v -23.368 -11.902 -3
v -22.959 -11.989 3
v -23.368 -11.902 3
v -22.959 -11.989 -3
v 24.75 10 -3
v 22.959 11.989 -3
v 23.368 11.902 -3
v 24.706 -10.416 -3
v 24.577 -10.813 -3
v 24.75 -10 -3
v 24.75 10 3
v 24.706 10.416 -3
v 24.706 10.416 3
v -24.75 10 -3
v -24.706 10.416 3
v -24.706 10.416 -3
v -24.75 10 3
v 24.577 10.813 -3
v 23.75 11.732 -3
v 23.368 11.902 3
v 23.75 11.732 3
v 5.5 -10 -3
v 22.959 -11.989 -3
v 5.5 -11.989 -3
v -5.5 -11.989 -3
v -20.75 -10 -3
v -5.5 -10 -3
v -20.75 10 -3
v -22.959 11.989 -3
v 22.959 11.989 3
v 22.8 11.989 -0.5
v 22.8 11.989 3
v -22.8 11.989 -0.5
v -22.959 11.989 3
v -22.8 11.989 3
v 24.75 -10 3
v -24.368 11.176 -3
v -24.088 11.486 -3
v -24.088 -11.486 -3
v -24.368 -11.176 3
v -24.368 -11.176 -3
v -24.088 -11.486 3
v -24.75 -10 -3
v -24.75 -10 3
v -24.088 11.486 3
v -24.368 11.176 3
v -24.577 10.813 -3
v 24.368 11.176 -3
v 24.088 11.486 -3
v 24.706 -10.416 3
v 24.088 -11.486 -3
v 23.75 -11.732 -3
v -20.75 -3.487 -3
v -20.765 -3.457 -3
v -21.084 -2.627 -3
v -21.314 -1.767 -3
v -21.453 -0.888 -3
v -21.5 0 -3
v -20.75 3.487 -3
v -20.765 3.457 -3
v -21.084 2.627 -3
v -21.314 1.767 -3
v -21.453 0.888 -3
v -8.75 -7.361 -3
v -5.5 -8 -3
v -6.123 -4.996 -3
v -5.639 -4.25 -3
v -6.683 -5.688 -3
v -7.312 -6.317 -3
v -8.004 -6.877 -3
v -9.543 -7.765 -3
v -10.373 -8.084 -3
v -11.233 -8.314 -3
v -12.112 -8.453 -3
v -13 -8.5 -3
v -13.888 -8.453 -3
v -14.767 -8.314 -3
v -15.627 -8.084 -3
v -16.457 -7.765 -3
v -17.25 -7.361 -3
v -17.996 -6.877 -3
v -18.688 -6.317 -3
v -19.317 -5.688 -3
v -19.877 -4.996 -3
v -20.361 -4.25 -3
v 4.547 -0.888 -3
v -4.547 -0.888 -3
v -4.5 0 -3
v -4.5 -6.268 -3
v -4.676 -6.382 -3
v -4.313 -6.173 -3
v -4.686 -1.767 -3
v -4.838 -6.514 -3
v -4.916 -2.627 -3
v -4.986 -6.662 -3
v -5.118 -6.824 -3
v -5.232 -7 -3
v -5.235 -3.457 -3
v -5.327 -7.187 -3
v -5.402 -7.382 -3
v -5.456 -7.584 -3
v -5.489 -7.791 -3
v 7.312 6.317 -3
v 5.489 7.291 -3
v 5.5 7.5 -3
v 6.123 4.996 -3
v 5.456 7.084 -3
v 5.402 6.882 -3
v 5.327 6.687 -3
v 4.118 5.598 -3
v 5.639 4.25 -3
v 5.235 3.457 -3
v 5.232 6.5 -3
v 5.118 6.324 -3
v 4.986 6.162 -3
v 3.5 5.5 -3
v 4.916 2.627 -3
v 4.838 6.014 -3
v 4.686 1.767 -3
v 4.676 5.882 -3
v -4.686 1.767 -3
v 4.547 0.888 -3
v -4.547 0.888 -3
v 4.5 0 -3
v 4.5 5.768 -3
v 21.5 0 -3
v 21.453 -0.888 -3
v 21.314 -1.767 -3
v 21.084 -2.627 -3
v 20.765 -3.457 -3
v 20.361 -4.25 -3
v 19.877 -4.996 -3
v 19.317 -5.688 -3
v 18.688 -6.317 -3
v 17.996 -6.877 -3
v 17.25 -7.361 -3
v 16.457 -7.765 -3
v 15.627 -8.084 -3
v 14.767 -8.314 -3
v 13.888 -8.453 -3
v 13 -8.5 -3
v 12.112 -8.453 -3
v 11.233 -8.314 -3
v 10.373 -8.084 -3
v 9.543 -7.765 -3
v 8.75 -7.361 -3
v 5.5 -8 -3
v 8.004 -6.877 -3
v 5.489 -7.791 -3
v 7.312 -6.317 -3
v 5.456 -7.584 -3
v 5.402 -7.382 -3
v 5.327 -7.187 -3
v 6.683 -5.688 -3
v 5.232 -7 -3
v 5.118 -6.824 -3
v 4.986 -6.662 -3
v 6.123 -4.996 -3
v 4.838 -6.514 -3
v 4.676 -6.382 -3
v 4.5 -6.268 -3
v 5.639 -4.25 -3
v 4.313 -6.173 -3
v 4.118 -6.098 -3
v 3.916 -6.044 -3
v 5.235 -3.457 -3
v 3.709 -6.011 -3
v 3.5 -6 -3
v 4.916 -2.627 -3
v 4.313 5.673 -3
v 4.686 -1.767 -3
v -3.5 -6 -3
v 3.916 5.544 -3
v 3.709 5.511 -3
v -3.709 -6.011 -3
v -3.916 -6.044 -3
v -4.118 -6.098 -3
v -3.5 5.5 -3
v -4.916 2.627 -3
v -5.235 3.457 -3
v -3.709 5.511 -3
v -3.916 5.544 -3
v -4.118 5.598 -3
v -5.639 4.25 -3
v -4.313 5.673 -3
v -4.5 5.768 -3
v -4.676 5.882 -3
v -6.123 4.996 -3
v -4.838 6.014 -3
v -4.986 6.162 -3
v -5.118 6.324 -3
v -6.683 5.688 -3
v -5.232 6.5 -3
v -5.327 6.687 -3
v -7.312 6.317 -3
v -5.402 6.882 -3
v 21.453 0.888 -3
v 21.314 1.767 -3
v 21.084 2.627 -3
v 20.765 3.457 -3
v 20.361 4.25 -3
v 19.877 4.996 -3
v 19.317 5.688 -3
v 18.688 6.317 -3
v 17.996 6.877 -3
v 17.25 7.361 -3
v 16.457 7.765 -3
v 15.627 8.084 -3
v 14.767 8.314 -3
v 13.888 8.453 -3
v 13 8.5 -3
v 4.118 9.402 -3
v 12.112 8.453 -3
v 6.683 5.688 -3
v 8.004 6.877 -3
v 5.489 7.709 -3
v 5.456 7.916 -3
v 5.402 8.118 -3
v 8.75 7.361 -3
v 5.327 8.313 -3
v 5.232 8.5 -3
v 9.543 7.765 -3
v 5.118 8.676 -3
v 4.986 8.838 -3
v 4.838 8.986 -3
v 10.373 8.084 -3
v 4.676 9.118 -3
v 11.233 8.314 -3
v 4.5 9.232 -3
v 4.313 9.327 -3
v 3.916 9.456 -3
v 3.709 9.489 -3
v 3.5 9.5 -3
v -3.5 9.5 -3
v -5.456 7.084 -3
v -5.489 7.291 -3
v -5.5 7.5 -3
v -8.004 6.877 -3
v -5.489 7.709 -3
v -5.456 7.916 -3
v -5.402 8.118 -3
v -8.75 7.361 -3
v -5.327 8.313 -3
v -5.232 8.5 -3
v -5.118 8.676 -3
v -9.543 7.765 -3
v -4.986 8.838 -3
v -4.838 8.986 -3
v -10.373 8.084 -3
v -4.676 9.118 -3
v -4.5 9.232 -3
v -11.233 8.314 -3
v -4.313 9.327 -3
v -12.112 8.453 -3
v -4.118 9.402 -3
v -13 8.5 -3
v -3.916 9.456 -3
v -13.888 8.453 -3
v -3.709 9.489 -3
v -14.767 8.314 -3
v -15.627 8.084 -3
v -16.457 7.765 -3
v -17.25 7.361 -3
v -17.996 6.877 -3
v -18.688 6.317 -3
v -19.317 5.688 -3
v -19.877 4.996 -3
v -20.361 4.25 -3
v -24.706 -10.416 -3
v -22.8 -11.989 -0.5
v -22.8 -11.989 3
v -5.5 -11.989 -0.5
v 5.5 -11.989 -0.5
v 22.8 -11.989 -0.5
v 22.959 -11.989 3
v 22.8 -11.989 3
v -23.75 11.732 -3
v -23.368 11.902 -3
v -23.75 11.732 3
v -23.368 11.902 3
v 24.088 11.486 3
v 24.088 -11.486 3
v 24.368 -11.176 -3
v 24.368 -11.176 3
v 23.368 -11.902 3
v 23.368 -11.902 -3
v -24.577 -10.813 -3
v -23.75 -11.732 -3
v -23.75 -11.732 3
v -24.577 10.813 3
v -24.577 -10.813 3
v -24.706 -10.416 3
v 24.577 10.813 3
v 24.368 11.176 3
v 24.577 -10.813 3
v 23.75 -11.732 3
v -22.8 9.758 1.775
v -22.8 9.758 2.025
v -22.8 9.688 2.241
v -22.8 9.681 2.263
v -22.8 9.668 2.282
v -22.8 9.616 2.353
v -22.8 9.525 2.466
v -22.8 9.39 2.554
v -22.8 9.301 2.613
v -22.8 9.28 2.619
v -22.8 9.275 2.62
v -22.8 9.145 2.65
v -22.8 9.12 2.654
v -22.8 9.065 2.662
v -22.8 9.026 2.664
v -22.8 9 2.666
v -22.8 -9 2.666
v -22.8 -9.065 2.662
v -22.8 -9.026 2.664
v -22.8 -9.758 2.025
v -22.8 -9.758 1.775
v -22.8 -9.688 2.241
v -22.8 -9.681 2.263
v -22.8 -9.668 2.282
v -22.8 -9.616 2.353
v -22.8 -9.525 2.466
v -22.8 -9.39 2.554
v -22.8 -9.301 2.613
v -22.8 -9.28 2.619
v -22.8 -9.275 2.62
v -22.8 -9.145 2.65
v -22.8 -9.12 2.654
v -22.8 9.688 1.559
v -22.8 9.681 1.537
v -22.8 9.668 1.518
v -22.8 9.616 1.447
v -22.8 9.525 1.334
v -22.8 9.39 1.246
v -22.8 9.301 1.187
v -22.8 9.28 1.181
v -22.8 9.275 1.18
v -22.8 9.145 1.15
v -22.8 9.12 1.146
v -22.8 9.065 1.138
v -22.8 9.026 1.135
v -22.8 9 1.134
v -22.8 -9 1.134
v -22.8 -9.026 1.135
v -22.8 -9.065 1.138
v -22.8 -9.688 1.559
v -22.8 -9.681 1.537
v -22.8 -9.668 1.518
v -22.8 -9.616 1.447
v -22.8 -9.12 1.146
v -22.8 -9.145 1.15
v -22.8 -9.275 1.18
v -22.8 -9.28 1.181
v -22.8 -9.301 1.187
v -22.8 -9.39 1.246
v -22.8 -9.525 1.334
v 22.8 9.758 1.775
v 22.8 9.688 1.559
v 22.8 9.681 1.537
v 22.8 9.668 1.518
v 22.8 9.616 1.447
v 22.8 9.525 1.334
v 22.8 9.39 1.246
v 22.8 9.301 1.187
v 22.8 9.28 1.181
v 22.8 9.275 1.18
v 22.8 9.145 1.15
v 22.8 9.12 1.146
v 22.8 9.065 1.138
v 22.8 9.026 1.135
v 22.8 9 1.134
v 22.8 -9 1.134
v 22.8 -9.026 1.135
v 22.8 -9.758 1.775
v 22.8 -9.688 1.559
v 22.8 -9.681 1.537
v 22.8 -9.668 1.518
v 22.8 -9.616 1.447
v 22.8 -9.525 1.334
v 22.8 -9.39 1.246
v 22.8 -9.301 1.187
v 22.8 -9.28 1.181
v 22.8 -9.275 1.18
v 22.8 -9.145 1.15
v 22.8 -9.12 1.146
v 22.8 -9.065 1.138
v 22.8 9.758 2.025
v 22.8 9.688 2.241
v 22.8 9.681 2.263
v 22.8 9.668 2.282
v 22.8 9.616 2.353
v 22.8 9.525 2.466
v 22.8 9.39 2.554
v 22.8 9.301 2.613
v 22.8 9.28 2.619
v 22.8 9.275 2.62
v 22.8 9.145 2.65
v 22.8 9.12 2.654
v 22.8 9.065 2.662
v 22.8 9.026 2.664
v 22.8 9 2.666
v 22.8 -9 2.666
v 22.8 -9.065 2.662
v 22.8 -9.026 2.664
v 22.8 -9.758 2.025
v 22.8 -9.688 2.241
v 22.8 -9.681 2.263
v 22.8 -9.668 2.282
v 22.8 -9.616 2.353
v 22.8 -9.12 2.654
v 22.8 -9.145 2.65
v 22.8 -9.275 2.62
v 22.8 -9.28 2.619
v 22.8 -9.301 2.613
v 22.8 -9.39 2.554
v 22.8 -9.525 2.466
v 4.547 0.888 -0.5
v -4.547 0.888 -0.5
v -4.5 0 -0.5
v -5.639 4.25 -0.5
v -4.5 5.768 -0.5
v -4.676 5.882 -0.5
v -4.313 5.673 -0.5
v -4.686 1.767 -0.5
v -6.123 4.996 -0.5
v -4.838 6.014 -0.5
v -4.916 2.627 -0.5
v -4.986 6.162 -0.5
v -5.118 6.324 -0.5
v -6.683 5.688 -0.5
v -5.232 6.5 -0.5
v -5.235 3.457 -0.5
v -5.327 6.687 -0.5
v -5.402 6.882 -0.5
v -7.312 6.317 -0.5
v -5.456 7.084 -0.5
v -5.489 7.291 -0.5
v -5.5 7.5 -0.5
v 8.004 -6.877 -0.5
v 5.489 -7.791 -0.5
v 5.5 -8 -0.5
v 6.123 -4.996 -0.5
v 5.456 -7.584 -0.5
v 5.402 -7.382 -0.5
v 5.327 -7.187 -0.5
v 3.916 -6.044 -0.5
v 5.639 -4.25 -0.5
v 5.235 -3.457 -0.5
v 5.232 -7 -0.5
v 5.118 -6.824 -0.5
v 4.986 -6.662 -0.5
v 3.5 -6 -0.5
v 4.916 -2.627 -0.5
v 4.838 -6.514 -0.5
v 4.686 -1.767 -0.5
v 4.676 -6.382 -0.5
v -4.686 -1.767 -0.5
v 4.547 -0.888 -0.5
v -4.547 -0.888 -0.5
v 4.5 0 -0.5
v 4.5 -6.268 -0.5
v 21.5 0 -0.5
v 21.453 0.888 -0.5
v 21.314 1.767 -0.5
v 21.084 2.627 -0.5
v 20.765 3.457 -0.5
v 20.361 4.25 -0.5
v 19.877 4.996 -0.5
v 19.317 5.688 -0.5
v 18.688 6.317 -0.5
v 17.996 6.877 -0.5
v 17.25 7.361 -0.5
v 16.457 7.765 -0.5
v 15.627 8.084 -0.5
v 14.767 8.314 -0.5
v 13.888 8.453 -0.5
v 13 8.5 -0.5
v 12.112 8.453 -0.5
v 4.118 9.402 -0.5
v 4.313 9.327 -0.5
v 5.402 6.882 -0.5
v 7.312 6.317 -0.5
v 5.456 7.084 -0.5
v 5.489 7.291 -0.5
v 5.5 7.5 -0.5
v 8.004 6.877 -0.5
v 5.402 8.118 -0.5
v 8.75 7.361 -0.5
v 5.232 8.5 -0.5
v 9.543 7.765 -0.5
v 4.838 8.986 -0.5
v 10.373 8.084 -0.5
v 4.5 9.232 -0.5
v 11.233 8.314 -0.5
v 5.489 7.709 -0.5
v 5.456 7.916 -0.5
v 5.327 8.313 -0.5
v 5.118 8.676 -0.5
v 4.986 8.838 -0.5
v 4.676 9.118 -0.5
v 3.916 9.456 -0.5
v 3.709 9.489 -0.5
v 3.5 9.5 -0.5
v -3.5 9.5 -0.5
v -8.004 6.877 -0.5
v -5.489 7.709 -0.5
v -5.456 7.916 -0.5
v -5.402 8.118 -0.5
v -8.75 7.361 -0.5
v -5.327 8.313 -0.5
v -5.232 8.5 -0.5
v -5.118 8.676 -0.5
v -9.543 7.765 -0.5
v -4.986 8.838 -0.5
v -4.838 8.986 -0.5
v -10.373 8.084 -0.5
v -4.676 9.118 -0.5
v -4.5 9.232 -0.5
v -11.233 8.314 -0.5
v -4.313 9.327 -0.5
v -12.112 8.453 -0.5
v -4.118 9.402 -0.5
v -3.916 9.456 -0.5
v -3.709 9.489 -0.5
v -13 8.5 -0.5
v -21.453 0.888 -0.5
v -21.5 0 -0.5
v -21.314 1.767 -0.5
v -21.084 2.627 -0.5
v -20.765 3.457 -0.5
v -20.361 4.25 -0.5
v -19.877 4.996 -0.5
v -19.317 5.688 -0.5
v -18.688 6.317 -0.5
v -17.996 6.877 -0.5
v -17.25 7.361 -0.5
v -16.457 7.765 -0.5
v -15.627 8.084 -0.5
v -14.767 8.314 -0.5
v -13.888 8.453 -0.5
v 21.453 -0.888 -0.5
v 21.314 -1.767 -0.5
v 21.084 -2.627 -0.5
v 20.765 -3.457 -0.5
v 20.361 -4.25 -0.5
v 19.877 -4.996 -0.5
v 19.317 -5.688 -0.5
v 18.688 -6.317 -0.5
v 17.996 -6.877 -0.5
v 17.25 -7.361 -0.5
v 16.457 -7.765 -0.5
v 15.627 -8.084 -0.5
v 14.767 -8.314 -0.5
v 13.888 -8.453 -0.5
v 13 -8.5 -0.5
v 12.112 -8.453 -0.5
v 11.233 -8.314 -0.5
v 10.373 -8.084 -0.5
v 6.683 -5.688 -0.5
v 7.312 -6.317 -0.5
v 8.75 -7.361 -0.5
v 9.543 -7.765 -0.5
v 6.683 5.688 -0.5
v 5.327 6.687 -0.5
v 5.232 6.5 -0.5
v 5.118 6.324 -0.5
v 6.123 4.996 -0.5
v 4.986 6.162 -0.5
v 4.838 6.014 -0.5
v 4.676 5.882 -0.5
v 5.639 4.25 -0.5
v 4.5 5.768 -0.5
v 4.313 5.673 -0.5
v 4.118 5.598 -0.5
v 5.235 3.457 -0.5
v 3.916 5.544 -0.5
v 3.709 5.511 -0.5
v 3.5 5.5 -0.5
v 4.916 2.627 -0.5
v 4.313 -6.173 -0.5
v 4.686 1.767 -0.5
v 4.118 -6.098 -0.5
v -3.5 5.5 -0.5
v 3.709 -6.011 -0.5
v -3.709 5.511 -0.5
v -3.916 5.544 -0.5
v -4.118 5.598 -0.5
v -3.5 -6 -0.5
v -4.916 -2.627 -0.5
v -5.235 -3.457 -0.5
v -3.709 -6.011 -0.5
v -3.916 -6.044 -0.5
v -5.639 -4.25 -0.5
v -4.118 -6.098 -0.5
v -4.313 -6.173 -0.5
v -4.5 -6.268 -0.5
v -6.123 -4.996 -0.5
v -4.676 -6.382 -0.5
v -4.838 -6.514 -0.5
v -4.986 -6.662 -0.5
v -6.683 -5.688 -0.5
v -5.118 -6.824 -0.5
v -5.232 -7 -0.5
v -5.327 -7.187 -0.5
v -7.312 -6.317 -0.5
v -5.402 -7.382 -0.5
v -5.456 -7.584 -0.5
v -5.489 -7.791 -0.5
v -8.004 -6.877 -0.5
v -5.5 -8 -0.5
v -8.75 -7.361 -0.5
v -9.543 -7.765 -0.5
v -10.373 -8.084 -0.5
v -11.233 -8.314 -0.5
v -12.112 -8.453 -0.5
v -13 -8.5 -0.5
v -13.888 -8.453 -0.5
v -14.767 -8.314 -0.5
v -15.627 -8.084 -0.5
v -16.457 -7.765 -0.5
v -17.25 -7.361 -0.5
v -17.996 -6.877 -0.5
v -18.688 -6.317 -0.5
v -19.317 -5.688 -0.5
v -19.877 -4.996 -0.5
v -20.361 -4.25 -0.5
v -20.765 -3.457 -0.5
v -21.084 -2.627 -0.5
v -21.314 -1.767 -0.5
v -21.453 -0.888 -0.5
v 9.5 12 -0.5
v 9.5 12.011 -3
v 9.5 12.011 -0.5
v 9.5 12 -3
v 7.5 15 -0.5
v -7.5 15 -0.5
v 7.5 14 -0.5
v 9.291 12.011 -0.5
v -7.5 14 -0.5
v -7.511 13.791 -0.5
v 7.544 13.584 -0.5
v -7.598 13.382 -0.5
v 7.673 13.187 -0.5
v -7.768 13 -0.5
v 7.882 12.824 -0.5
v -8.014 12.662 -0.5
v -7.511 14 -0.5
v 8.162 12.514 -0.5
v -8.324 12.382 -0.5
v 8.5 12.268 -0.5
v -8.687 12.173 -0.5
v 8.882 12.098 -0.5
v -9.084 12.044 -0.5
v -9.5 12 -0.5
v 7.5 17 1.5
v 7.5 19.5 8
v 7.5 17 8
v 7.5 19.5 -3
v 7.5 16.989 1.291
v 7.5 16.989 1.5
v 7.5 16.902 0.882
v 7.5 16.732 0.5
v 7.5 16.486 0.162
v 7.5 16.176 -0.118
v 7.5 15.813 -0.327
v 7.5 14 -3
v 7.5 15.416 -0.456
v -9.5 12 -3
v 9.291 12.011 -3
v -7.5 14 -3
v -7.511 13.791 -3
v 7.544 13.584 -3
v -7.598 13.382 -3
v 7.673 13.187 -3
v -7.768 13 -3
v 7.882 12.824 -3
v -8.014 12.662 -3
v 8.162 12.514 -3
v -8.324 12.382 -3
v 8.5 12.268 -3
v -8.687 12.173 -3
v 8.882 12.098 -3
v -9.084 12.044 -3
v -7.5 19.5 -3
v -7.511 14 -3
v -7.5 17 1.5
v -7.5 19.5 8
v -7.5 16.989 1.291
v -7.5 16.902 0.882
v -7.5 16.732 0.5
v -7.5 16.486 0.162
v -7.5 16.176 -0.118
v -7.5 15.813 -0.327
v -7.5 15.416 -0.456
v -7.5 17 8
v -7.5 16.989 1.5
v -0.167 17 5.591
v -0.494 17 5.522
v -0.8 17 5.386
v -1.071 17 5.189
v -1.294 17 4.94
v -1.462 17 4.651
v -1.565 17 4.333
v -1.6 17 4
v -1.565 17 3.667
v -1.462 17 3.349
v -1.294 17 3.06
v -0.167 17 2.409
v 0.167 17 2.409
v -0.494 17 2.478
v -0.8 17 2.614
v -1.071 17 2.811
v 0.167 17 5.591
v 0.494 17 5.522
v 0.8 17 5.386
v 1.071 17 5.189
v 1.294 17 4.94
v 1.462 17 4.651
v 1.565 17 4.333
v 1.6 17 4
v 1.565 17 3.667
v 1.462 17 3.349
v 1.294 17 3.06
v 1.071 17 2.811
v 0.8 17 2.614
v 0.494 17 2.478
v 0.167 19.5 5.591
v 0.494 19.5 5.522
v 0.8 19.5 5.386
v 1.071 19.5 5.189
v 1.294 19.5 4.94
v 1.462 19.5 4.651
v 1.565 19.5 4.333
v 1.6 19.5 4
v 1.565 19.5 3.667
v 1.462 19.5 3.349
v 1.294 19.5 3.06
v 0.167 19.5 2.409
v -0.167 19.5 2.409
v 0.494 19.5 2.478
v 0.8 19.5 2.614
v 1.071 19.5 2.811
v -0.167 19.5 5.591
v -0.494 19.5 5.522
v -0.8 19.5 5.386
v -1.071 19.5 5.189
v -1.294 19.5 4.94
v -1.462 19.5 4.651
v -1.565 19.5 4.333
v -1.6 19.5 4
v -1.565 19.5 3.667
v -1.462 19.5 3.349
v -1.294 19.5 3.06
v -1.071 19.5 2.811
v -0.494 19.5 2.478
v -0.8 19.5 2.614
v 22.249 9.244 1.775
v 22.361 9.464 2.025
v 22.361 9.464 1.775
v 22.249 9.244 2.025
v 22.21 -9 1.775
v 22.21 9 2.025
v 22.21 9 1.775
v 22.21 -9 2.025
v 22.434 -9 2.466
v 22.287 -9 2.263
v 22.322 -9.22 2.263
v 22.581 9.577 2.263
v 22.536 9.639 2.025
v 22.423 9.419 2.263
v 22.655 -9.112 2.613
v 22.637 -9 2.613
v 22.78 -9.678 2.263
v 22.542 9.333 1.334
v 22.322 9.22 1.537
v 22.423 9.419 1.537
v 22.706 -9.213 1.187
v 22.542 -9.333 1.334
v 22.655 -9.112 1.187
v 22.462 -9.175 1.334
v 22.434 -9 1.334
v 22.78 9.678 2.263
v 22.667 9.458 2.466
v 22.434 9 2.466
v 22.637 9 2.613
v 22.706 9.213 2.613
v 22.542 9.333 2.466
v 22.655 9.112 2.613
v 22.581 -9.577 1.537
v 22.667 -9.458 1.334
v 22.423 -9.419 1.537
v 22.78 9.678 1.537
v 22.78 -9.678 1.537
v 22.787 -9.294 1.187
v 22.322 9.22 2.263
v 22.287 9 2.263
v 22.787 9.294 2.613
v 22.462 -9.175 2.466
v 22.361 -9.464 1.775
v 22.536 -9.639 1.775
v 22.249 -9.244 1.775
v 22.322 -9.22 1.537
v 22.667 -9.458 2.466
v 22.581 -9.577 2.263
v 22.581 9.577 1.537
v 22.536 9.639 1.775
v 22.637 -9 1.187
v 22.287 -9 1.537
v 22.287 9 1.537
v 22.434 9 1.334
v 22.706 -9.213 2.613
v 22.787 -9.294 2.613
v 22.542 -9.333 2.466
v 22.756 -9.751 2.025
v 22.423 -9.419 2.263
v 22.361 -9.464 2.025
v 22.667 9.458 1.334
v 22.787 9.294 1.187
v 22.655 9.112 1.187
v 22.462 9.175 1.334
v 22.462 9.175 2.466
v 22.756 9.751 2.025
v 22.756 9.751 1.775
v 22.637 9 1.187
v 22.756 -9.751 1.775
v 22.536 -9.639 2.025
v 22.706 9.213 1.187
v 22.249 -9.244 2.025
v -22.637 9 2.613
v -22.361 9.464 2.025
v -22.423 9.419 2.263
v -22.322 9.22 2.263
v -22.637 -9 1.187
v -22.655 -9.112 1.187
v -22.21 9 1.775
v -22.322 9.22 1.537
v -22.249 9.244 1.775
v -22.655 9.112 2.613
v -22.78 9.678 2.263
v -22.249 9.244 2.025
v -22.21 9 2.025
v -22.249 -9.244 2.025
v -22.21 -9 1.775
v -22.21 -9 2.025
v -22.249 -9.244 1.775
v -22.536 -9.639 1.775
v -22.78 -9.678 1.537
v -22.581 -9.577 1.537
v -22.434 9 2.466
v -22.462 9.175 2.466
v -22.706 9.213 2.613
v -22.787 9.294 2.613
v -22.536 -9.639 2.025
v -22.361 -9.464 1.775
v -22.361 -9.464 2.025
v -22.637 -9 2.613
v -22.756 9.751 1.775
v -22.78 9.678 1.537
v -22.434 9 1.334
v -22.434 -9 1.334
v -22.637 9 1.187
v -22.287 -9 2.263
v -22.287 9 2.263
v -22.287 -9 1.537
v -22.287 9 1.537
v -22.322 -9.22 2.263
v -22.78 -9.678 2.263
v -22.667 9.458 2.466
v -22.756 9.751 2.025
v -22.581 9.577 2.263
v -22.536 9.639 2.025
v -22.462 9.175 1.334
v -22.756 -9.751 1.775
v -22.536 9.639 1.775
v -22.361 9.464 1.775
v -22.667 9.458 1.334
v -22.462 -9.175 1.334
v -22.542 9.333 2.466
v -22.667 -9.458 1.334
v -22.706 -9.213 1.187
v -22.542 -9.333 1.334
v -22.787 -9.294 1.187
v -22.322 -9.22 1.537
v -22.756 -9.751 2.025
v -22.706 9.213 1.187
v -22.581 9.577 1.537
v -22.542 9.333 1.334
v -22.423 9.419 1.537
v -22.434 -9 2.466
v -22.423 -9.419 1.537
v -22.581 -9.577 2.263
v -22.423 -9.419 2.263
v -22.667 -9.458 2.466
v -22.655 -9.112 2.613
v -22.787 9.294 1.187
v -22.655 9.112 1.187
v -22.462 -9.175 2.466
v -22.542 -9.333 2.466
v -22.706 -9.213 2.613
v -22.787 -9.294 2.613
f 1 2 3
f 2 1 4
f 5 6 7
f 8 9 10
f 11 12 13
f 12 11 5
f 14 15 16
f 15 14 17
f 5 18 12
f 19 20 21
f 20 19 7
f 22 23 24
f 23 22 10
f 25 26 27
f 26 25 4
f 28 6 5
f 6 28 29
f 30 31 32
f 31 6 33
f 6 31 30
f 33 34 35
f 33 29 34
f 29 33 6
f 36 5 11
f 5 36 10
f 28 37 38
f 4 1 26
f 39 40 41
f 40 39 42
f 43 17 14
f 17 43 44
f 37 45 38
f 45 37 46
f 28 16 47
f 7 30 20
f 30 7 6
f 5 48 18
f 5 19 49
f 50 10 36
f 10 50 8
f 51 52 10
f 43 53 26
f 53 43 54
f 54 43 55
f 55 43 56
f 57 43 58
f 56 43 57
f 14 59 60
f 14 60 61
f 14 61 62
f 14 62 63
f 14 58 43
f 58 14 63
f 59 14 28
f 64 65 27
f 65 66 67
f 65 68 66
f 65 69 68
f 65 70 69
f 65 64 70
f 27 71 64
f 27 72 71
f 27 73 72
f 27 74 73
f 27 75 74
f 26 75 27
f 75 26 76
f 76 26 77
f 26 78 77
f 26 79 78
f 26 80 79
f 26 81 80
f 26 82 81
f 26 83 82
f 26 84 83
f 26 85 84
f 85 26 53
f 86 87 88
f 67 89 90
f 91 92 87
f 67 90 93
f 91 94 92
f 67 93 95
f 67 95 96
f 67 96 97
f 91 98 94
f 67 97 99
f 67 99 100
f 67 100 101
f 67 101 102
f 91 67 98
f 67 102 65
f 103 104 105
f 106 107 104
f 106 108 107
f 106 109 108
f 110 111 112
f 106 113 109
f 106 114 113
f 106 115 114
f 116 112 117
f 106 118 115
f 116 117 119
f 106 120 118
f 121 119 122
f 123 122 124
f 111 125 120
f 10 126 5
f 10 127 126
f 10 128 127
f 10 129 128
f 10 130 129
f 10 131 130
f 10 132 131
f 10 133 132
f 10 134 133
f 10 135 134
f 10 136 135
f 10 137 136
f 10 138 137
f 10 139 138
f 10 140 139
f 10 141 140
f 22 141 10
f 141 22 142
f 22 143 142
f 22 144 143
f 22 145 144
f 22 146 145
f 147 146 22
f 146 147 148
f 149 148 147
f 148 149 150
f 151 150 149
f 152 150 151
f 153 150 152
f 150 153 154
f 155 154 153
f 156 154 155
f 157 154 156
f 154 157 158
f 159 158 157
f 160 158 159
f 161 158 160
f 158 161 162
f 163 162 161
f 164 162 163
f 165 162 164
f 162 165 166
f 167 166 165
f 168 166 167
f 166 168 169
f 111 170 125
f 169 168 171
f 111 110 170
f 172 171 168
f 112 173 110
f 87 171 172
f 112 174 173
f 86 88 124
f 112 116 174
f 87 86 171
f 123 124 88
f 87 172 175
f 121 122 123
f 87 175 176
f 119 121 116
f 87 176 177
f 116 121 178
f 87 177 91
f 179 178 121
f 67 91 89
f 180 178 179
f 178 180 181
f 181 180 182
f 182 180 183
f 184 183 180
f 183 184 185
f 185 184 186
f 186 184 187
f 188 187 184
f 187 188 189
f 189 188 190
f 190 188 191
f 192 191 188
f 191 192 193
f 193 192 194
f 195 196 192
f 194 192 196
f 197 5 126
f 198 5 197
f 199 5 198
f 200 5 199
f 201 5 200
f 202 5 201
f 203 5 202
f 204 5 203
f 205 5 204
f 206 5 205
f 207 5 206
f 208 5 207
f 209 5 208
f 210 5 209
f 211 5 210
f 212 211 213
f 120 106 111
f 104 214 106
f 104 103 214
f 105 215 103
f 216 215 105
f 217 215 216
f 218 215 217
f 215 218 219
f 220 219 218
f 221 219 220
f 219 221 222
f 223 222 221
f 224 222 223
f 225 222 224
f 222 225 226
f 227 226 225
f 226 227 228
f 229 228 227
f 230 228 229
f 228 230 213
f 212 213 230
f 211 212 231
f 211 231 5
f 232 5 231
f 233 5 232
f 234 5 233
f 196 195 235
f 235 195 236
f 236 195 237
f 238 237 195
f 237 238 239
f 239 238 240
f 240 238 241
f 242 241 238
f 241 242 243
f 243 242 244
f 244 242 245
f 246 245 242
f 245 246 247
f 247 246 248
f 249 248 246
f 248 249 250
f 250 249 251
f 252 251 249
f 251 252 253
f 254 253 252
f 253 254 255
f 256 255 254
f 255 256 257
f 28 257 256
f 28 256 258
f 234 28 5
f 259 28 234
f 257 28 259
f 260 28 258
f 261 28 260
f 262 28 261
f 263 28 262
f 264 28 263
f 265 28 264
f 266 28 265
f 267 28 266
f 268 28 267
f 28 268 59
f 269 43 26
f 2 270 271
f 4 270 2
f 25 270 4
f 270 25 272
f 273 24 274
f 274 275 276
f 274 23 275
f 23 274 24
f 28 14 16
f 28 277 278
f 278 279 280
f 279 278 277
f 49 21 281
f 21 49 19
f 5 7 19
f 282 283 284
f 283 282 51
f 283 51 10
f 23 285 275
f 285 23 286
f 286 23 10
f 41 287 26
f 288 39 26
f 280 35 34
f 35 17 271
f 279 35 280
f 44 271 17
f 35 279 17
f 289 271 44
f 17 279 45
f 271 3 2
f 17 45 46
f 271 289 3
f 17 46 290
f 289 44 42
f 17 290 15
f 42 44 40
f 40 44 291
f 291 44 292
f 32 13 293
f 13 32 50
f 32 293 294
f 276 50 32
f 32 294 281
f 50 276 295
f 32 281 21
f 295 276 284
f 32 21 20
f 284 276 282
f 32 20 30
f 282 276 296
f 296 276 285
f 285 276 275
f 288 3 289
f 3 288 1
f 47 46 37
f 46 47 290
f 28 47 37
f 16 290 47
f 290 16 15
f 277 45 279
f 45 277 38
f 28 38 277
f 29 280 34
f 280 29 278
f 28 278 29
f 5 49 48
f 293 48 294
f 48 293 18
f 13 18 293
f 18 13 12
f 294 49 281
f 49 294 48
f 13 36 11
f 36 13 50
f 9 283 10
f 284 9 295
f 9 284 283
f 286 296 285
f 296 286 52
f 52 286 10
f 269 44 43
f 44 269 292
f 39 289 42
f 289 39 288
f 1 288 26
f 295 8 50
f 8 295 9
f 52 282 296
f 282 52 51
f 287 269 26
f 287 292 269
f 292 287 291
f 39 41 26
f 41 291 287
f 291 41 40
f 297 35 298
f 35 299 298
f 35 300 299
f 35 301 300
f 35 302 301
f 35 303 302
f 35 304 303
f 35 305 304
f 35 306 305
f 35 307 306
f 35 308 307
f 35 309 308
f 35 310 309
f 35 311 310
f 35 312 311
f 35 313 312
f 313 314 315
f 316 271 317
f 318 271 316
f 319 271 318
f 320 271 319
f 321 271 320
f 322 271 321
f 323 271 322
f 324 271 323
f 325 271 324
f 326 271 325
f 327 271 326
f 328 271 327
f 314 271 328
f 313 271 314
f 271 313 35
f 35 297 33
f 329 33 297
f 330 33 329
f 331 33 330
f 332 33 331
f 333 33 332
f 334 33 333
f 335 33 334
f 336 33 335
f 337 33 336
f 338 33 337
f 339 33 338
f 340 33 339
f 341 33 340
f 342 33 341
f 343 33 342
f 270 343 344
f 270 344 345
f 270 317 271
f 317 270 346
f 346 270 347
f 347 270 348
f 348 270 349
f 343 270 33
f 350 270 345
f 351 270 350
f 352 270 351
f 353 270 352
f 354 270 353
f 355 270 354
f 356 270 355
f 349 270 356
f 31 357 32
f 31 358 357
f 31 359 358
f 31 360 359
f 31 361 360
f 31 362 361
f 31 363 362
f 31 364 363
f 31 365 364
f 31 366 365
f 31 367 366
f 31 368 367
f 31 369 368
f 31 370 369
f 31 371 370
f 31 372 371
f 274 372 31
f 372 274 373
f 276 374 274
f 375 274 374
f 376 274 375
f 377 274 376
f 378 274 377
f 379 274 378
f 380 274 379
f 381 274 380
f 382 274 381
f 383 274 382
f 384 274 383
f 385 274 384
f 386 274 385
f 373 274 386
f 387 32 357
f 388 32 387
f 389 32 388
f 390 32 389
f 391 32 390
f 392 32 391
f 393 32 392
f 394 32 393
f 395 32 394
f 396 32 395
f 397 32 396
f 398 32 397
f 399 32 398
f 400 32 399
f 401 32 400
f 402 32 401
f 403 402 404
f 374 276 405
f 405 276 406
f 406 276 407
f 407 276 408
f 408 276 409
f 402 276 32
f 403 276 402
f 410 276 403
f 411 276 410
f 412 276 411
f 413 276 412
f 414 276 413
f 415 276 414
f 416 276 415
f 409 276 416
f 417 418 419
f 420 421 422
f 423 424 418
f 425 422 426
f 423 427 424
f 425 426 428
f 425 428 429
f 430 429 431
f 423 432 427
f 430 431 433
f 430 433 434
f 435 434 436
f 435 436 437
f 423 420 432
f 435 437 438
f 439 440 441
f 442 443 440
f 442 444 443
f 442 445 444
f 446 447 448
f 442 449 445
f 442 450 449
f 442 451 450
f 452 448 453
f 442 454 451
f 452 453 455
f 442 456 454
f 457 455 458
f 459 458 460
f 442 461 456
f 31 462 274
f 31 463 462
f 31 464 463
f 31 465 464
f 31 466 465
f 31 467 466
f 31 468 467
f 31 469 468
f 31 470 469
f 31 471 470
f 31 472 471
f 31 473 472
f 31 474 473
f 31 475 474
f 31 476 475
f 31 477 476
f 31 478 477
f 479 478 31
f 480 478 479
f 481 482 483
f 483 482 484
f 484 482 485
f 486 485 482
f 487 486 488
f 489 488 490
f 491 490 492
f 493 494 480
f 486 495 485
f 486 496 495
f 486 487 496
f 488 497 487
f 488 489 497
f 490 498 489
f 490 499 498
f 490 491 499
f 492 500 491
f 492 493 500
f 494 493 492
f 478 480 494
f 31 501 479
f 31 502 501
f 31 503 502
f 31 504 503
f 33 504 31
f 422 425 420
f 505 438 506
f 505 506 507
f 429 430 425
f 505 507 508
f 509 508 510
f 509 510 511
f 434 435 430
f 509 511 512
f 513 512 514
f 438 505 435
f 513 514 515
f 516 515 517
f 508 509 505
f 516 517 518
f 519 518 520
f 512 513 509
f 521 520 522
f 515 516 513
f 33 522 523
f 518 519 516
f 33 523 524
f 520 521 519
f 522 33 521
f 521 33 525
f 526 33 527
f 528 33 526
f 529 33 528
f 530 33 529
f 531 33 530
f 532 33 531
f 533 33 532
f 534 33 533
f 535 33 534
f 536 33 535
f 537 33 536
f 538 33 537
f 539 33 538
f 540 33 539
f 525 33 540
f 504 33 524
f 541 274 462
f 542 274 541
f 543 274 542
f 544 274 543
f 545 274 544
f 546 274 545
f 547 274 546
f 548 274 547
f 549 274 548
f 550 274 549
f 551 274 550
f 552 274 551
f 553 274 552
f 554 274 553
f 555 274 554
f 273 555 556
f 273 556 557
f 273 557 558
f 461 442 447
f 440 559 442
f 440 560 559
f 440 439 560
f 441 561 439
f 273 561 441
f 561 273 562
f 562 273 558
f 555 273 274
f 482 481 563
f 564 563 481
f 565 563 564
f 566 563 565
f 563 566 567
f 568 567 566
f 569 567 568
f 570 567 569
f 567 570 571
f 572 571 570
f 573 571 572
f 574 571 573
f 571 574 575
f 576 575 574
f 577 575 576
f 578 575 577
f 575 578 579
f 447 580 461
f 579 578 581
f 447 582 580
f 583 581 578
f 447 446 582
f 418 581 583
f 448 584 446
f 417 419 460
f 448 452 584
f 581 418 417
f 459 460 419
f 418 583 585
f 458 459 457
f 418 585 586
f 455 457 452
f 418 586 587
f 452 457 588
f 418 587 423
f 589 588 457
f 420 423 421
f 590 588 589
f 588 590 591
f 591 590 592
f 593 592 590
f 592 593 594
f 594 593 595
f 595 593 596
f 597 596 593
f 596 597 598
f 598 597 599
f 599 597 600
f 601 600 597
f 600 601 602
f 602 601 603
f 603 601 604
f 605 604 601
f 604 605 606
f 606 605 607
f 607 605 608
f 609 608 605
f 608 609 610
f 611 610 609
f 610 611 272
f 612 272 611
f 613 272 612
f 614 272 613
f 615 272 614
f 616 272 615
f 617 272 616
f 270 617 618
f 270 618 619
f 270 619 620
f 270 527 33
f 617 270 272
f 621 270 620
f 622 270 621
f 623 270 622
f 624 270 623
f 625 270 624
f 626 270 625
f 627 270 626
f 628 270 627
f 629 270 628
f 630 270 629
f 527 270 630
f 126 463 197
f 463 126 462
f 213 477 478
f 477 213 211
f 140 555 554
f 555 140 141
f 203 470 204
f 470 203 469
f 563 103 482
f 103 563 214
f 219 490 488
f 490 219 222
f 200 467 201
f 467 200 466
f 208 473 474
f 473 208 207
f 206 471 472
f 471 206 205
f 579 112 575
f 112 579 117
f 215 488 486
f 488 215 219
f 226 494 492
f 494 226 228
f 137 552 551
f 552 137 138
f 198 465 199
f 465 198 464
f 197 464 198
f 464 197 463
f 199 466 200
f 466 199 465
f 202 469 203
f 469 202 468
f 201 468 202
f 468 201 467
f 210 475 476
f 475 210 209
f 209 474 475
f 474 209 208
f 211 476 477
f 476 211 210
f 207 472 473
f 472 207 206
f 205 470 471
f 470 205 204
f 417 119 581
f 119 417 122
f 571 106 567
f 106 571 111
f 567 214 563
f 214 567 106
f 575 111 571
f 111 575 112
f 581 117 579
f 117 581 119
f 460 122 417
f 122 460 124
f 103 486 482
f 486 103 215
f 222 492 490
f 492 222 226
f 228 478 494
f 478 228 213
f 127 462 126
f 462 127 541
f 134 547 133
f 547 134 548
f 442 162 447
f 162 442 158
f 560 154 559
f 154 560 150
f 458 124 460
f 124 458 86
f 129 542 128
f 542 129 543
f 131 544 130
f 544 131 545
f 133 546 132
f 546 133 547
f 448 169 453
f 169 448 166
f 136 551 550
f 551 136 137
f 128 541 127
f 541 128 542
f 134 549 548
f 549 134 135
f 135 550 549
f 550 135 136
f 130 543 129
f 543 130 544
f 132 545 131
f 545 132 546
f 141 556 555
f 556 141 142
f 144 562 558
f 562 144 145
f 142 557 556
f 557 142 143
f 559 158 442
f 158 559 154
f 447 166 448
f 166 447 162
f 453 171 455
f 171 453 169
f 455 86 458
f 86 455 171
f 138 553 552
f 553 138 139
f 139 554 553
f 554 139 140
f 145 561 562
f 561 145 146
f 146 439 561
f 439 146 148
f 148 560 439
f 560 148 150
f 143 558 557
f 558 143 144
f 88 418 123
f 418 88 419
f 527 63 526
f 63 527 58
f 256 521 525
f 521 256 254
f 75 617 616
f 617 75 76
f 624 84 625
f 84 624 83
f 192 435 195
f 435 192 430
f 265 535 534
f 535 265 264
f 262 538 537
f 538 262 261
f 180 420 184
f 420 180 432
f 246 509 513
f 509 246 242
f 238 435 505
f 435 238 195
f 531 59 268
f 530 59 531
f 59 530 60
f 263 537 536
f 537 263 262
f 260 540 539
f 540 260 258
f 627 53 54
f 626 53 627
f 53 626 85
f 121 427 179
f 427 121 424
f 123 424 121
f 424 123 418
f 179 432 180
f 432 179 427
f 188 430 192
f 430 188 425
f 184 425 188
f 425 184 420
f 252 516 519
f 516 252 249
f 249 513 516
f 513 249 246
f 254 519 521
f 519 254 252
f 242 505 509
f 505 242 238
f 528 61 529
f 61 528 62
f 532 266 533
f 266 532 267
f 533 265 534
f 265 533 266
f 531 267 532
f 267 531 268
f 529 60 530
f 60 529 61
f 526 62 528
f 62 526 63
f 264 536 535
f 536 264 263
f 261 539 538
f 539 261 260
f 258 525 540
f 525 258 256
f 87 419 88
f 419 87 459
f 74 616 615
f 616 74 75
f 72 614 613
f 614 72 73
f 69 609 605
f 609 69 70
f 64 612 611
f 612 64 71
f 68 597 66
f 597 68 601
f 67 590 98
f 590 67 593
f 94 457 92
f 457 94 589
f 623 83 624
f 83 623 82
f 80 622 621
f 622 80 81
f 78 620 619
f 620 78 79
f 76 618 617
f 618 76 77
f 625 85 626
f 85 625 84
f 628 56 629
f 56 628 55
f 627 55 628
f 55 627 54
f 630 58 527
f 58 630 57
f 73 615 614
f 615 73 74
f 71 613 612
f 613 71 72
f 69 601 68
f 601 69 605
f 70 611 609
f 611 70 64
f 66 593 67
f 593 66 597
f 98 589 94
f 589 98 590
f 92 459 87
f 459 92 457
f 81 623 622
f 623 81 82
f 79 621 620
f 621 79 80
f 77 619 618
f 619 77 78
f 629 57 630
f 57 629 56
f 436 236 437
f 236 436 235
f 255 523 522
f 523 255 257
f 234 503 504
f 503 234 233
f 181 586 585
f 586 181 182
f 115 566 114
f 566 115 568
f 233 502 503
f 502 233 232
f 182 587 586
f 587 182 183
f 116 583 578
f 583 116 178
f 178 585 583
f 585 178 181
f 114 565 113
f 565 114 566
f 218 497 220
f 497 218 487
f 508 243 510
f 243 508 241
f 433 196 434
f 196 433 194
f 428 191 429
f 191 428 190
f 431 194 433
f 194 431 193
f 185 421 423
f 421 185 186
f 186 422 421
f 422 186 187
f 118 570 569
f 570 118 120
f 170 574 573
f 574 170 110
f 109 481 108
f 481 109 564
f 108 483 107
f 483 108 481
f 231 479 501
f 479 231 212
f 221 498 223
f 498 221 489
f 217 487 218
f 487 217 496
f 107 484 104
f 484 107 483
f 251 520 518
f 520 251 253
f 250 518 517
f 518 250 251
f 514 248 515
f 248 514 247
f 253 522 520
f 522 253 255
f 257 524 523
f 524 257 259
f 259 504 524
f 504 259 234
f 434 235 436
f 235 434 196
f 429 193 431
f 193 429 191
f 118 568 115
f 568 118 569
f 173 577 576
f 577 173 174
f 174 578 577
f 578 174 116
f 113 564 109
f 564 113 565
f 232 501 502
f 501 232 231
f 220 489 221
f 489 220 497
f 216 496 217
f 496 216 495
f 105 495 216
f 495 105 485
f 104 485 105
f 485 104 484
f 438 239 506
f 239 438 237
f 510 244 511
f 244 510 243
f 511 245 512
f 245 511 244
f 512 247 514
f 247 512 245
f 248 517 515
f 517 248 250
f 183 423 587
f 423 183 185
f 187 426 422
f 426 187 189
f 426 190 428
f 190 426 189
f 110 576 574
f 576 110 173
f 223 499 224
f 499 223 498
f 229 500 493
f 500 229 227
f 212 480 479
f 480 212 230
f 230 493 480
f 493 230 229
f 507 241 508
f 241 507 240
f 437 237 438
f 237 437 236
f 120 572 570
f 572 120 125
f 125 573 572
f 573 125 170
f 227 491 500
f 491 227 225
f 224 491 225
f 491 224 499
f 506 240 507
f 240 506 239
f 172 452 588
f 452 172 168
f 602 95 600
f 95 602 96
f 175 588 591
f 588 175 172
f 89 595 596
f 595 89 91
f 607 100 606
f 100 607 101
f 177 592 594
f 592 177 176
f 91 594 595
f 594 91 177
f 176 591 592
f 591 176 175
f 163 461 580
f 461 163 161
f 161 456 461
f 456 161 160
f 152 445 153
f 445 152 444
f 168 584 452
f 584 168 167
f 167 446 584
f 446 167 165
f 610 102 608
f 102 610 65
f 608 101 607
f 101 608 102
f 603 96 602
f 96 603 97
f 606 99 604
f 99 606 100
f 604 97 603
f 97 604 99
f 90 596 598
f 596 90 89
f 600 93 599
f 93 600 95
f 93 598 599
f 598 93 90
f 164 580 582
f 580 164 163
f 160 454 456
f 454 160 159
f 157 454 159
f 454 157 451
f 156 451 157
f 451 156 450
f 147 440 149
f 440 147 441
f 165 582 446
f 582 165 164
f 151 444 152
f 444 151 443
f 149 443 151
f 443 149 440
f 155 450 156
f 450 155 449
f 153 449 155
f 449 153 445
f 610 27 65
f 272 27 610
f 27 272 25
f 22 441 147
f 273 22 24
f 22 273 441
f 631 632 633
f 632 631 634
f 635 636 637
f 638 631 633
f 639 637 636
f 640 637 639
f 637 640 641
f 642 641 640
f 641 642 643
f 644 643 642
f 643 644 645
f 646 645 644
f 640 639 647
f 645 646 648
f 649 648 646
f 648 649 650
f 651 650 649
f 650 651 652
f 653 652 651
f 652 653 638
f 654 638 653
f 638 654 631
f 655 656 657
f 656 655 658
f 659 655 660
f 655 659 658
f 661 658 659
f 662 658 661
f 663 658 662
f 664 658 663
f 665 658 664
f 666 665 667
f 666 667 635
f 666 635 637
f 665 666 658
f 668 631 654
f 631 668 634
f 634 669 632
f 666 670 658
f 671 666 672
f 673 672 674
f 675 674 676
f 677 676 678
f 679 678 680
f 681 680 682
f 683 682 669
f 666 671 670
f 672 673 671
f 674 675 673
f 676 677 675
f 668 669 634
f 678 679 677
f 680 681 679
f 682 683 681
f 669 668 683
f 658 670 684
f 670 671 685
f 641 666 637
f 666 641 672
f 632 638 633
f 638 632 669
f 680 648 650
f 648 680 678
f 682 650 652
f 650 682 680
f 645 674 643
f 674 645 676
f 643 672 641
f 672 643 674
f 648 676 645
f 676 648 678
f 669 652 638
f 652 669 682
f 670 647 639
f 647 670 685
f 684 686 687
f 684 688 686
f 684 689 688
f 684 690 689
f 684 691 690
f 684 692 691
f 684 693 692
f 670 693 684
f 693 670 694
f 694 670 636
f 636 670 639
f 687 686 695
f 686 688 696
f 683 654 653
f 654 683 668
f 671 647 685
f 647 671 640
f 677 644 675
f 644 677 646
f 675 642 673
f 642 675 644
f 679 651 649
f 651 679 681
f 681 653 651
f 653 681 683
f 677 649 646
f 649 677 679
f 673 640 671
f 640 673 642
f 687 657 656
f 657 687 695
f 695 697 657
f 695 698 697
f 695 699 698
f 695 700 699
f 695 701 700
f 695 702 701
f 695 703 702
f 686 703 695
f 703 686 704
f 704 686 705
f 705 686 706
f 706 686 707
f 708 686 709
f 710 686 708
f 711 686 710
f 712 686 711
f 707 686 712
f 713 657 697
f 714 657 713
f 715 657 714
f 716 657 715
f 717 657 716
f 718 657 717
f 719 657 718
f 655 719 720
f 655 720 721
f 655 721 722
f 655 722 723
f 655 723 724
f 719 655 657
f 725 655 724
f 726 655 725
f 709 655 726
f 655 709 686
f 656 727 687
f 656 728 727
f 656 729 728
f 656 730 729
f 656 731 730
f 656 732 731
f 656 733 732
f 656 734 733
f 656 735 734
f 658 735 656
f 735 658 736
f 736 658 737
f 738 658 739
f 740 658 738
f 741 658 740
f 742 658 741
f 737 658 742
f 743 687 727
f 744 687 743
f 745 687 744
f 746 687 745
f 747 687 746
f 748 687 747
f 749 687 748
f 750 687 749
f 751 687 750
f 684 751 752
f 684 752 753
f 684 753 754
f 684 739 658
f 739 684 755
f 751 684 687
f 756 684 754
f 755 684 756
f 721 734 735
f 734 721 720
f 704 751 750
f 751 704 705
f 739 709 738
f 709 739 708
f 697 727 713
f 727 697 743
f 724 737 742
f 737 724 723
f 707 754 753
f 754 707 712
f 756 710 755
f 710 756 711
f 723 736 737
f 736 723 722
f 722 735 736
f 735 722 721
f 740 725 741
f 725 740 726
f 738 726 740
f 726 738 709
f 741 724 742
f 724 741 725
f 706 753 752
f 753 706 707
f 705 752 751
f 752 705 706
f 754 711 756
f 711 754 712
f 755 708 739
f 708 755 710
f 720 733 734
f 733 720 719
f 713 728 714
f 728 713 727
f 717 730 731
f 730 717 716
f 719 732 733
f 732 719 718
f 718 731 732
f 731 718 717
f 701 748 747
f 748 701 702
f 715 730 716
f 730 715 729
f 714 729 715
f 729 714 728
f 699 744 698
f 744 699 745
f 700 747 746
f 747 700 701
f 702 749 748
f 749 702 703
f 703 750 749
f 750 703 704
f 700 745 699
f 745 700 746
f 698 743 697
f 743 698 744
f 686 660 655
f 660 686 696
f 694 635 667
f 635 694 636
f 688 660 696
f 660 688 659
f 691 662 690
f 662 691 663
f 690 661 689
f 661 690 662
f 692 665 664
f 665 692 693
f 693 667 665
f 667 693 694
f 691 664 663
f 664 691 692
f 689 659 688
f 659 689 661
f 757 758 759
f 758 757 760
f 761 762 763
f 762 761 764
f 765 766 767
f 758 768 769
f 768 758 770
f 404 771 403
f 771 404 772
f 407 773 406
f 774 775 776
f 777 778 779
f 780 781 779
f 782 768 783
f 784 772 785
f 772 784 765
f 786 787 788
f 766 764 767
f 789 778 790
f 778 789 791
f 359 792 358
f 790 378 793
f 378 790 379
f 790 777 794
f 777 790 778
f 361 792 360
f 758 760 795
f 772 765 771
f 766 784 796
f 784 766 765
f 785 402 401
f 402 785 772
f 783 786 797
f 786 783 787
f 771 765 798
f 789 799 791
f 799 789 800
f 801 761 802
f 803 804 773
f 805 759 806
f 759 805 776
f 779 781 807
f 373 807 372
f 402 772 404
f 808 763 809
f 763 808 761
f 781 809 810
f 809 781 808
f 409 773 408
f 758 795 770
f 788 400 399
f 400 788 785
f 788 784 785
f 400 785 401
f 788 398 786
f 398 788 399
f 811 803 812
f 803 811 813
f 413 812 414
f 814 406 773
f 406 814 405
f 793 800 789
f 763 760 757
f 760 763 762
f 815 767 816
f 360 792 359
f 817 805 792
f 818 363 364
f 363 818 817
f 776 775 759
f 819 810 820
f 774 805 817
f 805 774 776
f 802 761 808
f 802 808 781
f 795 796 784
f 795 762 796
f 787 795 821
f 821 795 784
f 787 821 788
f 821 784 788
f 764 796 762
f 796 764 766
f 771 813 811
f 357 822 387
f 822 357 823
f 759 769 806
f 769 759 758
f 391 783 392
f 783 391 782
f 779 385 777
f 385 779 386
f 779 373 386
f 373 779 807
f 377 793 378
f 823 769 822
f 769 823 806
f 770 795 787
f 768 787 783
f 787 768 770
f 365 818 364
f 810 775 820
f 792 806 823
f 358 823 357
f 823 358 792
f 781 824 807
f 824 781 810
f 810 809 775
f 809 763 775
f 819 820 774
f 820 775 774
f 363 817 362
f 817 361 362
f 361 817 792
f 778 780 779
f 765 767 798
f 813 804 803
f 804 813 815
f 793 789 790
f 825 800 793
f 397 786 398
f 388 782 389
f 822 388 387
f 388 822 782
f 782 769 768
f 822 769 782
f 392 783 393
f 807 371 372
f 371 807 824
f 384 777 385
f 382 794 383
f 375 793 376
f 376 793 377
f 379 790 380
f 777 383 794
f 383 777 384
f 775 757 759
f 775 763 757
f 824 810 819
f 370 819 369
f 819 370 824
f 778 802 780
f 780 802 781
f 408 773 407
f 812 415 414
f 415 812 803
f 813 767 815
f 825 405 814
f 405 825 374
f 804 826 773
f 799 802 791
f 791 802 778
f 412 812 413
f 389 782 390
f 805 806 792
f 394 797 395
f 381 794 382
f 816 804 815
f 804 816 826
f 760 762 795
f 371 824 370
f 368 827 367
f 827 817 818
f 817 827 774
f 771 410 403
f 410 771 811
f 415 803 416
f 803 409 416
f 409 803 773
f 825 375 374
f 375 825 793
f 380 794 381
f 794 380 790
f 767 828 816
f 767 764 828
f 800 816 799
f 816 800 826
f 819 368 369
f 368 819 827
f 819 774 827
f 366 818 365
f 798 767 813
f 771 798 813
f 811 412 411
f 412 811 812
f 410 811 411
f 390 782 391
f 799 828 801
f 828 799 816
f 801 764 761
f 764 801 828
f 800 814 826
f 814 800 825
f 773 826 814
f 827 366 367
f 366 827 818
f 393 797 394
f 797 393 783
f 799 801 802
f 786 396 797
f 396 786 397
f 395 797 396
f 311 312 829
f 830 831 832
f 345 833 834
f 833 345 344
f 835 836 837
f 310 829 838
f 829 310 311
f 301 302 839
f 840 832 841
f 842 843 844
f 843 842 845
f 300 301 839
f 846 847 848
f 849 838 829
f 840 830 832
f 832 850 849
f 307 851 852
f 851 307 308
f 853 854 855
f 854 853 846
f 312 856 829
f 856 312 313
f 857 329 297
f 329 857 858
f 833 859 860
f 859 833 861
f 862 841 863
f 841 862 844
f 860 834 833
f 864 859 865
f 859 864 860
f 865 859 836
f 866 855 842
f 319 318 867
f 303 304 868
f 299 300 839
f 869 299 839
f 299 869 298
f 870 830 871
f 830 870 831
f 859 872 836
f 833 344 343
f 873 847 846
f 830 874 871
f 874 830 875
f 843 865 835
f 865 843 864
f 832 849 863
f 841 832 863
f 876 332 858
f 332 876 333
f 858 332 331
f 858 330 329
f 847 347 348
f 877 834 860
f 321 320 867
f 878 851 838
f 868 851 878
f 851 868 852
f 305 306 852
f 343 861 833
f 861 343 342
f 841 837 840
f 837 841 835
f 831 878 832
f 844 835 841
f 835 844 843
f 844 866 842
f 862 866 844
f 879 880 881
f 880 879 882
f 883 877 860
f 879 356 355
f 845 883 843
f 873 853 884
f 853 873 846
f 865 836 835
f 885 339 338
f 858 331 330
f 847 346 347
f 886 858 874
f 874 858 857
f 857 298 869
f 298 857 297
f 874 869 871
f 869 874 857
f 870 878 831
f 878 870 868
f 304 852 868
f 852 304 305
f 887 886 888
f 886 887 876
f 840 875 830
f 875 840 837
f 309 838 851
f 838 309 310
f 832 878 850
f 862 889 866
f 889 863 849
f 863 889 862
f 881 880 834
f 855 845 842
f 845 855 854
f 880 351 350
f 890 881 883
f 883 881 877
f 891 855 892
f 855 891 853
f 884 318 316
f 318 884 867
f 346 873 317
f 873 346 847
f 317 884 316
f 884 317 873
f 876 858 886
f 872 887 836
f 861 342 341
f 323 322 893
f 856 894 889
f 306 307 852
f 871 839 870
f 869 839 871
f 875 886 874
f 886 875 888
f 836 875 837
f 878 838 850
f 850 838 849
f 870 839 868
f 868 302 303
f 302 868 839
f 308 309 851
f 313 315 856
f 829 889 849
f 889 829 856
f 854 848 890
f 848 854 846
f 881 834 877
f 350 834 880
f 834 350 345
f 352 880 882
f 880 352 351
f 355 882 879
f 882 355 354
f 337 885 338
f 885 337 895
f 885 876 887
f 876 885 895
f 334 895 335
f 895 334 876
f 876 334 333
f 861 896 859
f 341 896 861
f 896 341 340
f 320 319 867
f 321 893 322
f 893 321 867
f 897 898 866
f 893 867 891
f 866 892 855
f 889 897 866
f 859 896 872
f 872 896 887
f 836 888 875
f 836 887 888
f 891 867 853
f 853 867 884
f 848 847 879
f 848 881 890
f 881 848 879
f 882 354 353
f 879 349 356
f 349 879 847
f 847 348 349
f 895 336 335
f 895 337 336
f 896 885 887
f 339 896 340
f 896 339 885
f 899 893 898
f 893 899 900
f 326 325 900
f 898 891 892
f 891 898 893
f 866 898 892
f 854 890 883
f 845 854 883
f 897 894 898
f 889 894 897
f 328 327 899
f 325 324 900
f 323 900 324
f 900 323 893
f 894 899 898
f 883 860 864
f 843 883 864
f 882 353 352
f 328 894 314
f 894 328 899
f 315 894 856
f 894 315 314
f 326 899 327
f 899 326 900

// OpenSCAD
difference()
{
minkowski($fn=30){
cube([45.5,20,6],center=true);
cylinder(d=4,h=0.000001);
}
translate([0,0,2])cube([45.6,25,5],center=true);
    
translate([13,0,-5])cylinder(d=17,h=5,$fn=60);
translate([-13,0,-5])cylinder(d=17,h=5,$fn=60);

hull(){
translate([-3.5,7.5,-5])cylinder(d=4,h=5,$fn=60);
translate([3.5,7.5,-5])cylinder(d=4,h=5,$fn=60);
}
hull(){
translate([-3.5,-8,-5])cylinder(d=4,h=5,$fn=60);
translate([3.5,-8,-5])cylinder(d=4,h=5,$fn=60);
}

translate([0,-10.5,0])cube([11,5,8],center=true);
}

hull(){
translate([23,9,1.9])sphere(0.8,$fn=20);
translate([23,-9,1.9])sphere(0.8,$fn=20);
}
hull(){
translate([-23,9,1.9])sphere(0.8,$fn=20);
translate([-23,-9,1.9])sphere(0.8,$fn=20);
}
translate([9.5,14,-3])rotate([0,0,180])
scale([1,1,1.25])acuerdo();
translate([-9.5,14,-3])rotate([0,0,-90])
scale([1,1,1.25])acuerdo();

translate([-7.5,12,-3])cube([15,7,2.5]);
difference(){
translate([-7.5,17,-3])cube([15,2.5,11]);
translate([0,0,4])rotate([-90,0,0])
cylinder(d=3.2,h=20,$fn=30);
}
translate([-7.5,15,1.5])scale([7.5,1,1])
rotate([0,90,0])acuerdo();

module acuerdo(){
difference(){
cube(2);
cylinder(d=4,h=2,$fn=30);
}
}
